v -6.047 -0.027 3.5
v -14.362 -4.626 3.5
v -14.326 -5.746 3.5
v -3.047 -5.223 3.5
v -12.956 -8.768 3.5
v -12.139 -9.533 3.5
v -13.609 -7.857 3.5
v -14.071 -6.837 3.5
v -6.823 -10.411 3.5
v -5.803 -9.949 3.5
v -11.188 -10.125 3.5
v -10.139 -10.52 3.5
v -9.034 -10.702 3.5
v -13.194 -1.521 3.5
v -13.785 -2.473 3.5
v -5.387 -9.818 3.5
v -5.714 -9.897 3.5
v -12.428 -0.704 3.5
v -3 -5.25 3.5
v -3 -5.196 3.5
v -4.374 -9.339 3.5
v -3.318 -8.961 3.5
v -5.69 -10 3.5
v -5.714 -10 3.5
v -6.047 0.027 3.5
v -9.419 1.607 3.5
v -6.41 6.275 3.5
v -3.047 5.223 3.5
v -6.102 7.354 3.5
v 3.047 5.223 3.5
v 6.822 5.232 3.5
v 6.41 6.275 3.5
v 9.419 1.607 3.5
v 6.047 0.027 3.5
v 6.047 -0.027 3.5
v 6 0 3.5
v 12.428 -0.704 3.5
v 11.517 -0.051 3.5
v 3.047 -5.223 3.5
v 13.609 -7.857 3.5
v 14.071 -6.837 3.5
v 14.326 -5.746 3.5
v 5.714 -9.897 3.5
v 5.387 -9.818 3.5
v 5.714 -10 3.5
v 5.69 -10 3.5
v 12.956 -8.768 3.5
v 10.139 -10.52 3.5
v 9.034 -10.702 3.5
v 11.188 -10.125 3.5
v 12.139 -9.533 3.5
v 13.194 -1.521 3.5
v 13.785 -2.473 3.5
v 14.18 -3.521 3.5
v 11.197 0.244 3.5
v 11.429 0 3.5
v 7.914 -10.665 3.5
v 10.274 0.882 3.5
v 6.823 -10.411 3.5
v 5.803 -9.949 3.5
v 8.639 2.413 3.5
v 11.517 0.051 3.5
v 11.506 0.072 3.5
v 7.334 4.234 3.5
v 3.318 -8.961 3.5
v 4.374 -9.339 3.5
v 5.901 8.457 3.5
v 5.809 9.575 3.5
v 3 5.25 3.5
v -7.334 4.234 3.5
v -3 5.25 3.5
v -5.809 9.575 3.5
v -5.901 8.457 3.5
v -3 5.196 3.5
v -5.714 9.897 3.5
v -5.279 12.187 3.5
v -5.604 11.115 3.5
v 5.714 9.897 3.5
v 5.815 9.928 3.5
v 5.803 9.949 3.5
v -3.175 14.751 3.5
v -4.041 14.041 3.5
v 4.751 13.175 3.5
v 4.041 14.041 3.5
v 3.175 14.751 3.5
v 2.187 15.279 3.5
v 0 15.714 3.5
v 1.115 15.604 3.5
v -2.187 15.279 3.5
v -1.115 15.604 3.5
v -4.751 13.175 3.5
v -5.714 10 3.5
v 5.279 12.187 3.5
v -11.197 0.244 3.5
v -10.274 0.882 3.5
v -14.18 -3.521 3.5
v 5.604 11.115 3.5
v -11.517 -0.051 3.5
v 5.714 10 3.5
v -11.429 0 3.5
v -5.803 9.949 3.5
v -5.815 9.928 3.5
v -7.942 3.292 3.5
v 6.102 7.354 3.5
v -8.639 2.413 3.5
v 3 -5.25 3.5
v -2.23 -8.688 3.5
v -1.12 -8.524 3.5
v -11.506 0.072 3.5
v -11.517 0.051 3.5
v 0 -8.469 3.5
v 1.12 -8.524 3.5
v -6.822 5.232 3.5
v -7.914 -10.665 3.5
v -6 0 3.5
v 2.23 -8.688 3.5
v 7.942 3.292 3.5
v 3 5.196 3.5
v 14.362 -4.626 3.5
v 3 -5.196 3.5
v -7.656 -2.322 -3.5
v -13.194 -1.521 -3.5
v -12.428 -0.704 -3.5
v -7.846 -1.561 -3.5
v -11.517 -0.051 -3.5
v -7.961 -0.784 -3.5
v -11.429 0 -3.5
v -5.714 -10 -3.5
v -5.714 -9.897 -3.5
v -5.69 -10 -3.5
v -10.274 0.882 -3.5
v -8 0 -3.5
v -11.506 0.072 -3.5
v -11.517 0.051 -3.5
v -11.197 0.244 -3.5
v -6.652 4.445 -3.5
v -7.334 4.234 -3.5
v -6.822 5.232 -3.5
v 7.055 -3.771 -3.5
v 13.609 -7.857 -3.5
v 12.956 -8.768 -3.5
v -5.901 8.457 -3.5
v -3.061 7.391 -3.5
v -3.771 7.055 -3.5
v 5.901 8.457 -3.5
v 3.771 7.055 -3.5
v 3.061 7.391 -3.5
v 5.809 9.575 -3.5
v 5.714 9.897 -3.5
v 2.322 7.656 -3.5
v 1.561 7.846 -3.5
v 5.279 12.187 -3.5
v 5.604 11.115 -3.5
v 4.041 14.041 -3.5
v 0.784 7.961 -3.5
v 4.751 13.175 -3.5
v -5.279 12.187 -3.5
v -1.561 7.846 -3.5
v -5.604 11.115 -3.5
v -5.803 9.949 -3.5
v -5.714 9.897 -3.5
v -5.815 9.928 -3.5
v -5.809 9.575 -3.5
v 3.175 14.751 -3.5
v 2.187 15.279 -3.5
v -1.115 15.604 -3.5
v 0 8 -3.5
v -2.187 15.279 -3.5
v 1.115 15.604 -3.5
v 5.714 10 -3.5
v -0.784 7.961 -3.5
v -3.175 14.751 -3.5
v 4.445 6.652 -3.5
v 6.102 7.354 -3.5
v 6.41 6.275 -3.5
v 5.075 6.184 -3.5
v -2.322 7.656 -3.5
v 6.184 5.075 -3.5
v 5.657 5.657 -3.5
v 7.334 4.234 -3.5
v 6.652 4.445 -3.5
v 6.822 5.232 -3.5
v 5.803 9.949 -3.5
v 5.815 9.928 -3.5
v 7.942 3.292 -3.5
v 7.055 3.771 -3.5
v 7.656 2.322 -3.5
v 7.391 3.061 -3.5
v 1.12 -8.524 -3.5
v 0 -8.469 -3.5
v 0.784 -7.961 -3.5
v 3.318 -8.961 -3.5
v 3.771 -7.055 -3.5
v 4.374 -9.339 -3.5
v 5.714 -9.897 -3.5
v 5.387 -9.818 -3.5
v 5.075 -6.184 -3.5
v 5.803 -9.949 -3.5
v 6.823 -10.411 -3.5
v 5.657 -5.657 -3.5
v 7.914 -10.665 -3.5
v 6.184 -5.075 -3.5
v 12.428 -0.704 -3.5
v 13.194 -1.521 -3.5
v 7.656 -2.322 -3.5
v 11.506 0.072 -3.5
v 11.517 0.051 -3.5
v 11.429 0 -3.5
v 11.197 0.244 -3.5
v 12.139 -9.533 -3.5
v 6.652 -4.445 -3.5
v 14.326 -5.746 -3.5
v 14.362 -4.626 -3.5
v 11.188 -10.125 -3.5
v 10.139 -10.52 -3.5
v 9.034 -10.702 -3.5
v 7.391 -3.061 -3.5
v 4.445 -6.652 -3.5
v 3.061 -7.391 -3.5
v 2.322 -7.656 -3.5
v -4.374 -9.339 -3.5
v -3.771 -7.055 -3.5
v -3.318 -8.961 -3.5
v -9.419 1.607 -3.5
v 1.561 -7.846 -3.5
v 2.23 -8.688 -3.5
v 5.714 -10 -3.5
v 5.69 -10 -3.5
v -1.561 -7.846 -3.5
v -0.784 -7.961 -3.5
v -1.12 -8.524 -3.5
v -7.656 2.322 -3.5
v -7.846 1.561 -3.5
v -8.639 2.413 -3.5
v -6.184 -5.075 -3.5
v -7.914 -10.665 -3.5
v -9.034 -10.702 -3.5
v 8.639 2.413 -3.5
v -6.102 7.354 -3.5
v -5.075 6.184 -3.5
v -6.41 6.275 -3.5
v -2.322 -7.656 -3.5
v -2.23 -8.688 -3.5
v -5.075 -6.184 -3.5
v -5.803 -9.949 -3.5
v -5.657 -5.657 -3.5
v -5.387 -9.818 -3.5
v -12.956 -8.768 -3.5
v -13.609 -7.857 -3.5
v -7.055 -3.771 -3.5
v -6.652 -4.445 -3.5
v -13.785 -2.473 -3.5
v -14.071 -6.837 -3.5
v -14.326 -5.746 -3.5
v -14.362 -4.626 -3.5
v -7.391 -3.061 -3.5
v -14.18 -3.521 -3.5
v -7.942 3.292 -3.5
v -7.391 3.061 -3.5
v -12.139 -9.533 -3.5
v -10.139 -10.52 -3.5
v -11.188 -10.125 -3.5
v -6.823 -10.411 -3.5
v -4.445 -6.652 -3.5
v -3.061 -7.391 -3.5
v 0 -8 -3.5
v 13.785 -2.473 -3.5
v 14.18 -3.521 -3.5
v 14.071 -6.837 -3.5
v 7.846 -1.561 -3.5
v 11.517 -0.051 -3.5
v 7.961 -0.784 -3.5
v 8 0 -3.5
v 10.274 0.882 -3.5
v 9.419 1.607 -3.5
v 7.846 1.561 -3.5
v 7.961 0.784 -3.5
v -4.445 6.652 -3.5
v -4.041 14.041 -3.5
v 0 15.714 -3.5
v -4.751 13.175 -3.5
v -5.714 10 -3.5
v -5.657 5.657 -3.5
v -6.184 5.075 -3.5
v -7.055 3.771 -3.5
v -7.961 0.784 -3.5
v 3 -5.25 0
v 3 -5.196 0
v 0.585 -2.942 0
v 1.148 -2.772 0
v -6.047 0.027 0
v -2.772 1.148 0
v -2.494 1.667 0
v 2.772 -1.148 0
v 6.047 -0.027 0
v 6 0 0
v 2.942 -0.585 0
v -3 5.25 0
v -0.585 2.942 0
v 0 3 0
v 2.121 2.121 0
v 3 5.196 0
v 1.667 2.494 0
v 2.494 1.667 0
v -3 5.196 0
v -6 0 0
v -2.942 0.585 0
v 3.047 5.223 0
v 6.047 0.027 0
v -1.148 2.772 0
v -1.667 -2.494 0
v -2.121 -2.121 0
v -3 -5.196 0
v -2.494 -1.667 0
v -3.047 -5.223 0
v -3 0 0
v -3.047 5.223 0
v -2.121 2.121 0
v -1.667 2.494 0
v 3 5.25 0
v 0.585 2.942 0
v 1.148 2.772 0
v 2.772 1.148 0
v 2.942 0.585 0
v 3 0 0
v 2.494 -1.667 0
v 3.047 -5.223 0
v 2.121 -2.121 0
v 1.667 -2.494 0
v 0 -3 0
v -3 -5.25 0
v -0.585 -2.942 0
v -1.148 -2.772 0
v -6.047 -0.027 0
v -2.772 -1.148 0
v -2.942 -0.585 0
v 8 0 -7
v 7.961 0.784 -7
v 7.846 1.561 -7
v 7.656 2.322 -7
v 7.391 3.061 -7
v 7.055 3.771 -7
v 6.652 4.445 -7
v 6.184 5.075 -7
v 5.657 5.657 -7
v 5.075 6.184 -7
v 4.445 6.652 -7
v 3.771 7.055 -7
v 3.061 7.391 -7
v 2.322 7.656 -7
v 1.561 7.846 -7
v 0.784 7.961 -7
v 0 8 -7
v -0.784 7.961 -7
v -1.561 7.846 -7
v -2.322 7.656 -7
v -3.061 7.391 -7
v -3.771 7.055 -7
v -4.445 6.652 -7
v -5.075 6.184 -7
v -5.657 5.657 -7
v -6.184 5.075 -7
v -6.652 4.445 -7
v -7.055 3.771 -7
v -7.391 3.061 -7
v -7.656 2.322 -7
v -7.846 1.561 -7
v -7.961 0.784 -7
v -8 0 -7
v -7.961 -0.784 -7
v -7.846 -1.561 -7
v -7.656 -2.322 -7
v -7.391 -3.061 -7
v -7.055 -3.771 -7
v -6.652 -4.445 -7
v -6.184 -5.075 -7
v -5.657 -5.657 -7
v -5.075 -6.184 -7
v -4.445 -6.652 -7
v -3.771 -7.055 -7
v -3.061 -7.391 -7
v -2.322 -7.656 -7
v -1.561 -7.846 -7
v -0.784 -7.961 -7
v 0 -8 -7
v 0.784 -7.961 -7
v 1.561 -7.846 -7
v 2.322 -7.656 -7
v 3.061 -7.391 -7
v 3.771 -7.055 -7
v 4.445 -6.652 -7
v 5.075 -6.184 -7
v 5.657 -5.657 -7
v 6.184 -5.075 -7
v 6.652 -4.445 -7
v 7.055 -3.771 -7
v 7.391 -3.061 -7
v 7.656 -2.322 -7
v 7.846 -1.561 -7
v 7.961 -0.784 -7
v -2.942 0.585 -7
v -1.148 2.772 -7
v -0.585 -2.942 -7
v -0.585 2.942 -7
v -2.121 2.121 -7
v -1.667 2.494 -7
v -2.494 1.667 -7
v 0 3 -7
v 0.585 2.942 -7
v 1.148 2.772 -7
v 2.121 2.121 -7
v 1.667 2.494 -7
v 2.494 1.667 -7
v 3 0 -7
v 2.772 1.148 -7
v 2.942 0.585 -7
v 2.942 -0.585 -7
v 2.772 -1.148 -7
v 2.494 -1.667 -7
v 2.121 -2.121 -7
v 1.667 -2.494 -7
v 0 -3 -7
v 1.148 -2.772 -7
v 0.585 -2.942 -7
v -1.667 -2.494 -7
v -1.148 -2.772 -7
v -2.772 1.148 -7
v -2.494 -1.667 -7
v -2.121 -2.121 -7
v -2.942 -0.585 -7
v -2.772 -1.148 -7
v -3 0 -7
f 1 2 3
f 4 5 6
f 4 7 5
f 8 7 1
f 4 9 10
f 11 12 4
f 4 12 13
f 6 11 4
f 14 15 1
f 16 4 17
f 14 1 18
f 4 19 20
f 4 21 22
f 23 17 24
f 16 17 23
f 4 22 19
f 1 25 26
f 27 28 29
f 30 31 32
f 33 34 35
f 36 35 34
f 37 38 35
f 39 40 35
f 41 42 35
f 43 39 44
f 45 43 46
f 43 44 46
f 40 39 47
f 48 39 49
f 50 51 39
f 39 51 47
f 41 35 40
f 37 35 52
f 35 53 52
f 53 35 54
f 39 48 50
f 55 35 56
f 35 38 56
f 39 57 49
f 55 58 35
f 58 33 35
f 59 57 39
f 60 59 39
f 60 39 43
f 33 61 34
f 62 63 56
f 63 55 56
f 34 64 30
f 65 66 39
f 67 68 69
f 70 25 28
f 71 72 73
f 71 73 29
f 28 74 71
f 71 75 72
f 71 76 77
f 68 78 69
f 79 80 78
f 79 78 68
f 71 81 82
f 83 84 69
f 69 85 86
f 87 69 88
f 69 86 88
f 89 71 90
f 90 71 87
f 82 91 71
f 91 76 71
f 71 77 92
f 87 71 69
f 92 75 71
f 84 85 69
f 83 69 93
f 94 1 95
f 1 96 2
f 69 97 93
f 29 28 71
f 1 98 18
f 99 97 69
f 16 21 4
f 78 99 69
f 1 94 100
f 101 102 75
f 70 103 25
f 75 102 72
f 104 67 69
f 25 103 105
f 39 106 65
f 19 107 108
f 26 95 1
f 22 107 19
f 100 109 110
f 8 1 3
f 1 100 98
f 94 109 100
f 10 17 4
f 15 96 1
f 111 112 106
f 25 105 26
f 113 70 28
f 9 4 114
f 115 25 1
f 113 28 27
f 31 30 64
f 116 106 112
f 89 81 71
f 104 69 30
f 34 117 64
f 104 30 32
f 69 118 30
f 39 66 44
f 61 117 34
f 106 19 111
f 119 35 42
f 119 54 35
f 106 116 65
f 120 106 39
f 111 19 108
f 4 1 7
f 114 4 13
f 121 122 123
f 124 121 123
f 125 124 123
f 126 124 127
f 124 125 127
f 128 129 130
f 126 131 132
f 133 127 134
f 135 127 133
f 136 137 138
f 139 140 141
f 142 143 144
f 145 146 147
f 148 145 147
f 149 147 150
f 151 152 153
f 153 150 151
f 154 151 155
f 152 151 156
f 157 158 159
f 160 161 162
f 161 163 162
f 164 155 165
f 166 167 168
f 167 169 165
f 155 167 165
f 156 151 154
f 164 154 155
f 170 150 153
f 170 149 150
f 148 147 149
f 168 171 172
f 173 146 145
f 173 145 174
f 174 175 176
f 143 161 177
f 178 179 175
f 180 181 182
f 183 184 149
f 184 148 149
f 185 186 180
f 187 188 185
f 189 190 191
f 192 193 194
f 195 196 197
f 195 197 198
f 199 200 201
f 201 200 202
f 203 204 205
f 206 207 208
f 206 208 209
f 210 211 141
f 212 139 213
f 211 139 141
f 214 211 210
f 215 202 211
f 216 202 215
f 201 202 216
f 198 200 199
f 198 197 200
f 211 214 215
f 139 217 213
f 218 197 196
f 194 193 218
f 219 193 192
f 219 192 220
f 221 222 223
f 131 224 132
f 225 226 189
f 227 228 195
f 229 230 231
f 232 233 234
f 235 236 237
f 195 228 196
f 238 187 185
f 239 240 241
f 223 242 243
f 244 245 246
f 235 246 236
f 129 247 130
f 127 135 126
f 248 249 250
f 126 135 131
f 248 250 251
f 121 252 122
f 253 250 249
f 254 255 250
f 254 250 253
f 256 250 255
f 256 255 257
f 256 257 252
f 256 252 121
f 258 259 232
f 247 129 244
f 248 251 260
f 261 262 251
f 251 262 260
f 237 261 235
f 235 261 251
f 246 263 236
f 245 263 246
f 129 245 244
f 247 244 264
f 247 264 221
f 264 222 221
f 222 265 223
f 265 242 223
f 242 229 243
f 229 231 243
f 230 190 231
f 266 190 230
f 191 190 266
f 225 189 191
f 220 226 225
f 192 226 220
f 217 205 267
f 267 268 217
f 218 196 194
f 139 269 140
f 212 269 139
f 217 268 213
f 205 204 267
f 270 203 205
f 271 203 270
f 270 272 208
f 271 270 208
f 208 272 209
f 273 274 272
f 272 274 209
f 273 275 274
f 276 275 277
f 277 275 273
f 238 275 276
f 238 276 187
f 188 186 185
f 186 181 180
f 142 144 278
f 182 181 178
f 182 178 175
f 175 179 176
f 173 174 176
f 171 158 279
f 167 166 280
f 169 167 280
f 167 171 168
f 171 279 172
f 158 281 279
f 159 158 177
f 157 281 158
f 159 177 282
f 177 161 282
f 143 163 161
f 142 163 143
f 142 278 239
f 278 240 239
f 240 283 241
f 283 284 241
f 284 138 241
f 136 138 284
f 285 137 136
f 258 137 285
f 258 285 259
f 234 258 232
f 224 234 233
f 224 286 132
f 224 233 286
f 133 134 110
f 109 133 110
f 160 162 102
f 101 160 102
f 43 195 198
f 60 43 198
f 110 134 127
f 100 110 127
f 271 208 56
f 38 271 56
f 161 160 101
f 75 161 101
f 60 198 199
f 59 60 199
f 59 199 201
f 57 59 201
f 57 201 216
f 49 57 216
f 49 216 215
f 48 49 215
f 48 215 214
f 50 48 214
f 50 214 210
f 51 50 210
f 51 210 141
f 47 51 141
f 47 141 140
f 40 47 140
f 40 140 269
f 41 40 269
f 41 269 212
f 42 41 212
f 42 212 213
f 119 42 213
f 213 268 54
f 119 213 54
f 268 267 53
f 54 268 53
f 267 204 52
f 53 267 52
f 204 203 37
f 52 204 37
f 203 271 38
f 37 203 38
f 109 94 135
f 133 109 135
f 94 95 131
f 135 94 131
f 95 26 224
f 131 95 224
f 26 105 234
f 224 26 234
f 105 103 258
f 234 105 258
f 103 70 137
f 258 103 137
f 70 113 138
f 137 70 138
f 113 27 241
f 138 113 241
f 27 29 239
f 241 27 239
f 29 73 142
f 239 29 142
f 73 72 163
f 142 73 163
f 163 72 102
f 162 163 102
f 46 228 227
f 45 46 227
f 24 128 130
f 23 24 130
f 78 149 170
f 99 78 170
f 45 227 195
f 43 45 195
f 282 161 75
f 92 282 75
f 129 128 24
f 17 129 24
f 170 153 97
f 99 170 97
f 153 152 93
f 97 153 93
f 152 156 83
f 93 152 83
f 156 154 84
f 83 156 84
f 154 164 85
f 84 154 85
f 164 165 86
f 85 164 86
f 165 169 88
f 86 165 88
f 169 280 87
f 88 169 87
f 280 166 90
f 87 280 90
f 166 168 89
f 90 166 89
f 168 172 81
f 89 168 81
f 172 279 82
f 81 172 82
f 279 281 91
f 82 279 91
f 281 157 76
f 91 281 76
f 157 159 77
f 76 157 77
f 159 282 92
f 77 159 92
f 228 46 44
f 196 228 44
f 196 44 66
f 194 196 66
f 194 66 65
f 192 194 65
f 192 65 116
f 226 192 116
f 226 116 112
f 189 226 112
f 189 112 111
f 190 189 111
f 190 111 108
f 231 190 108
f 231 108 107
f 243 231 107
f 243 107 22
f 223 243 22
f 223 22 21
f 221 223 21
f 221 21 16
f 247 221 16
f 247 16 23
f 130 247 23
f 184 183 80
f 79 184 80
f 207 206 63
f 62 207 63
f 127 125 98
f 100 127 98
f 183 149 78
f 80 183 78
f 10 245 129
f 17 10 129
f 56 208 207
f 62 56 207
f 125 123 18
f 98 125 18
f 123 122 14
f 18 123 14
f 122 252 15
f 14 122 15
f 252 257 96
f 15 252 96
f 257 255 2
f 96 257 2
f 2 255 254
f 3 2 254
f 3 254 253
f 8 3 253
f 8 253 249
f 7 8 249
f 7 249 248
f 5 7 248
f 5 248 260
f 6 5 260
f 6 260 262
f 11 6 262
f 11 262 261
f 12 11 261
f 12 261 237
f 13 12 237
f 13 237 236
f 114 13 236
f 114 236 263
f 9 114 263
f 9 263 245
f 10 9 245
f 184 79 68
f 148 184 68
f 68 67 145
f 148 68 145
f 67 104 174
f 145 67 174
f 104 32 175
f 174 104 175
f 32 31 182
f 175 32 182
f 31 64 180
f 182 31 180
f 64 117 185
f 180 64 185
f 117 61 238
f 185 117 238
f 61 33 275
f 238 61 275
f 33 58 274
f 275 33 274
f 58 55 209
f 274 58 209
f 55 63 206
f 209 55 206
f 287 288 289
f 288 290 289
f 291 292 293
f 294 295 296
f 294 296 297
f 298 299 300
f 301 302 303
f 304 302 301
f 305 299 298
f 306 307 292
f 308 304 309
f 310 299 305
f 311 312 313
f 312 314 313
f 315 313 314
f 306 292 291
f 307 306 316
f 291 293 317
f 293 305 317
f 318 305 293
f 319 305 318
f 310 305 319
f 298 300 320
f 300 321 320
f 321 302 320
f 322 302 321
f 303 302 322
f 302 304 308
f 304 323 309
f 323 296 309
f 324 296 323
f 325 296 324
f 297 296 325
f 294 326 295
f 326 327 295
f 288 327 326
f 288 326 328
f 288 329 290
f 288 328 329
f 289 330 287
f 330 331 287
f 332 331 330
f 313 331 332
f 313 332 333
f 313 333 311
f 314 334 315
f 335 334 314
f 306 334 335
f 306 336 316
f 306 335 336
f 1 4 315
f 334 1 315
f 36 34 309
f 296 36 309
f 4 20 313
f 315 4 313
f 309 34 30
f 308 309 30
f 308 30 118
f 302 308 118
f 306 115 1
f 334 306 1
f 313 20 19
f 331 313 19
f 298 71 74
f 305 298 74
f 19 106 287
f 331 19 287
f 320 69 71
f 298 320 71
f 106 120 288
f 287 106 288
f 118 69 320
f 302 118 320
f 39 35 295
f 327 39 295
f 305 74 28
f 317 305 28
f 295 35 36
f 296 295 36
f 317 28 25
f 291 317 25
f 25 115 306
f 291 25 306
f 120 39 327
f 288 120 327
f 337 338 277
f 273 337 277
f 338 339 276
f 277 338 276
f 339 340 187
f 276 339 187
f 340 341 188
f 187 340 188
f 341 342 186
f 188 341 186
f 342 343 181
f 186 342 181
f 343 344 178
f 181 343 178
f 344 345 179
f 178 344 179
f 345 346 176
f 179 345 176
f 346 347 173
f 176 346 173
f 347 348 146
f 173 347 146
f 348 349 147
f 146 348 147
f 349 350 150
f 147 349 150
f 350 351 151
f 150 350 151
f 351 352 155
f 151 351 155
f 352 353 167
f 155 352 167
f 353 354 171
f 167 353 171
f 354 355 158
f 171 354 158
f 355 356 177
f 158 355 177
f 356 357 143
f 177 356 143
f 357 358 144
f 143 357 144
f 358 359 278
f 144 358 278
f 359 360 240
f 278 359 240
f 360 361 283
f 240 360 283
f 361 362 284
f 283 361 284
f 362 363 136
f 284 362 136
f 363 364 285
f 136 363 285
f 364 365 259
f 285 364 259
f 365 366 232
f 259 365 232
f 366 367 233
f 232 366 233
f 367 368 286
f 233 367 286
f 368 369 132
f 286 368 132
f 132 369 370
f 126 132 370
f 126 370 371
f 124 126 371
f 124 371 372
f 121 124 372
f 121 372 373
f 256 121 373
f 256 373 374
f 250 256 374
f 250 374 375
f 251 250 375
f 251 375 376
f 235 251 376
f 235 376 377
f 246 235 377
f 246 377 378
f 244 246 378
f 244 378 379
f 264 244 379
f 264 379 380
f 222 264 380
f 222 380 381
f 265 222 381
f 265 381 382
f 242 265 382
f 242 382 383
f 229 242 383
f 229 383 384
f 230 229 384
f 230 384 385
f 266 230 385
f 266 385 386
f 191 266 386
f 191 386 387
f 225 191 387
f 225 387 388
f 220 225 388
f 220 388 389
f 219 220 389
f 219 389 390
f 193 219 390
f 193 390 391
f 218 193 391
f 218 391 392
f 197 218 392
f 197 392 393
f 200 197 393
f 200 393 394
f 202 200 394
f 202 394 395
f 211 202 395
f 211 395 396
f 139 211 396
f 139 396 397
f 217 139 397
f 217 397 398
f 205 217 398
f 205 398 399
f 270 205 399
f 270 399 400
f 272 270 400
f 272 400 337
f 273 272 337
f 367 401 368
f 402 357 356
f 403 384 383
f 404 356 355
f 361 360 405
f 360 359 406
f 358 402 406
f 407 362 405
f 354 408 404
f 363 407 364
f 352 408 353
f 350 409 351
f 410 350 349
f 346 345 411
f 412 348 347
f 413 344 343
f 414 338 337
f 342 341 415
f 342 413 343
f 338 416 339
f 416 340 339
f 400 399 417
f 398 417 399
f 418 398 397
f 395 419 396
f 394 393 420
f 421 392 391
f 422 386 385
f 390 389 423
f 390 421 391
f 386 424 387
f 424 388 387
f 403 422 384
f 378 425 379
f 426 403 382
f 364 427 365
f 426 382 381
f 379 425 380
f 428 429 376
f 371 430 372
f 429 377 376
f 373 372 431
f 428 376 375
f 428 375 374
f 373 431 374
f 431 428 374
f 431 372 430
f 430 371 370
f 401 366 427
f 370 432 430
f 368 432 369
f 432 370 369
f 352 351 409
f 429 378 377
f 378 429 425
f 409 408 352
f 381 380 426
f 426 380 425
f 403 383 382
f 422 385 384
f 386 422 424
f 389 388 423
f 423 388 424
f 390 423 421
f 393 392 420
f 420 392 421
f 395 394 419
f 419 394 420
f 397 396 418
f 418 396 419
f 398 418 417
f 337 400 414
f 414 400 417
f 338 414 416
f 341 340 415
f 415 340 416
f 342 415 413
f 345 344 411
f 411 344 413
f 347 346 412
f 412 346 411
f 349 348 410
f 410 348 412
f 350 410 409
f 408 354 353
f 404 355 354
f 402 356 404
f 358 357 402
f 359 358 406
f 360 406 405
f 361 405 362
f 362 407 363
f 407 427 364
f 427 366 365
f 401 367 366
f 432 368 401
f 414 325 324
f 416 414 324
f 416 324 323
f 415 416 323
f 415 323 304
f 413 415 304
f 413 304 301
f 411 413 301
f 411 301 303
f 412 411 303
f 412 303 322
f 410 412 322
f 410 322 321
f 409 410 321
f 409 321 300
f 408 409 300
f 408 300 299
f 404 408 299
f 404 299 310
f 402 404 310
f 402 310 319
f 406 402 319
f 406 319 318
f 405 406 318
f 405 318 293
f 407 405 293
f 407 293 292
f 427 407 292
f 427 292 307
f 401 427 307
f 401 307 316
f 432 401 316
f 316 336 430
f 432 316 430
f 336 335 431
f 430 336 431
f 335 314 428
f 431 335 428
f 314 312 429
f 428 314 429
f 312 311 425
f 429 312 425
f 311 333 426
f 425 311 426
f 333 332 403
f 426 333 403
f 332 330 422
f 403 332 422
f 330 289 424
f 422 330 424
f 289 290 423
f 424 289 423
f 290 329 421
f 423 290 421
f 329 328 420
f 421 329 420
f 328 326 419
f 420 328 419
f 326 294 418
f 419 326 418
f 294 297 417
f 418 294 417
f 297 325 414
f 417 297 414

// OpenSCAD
//Thumbwheel by Andy Clark

//Hexagon from http://svn.clifford.at/openscad/trunk/libraries/shapes.scad
// size is the XY plane size, height in Z
module hexagon(size, height) {
  boxWidth = size/1.75;
  for (r = [-60, 0, 60]) rotate([0,0,r]) cube([boxWidth, size, height], true);
}

module nut(size, height) {
  boxWidth = size/1.75;
  rRemove = size/1.75;
  rX = pow(pow(rRemove,2)-pow(boxWidth/2,2),0.5);
  difference() {
	  union() {
		  /* Thumbwheel part */
		  difference() {	   
		  for (r = [-120, 0, 120])
				rotate([0,0,r]){
					difference() {
						union() {
							cube([boxWidth, size, height], true);
							translate([0, size/2, 0])
								cylinder(h = height, r=boxWidth/2,$fn=32, center=true);
							}
						translate([0, -rX-size/2, 0])
							cylinder(h = height+5, r=rRemove,$fn=64, center=true);
					}
				};
		  translate([0,0,height/2])	
			hexagon(10.5,height);
		  }
	  /* Collar */
	  translate([0,0,-height])
		cylinder(r=8,height,$fn=64,centre=true);
	  }
	/* Hole for bolt */
	translate([0,0,-height*2])	
		cylinder(r=3,height*4,centre=true,$fn=32);
  }
}

nut(20,7);
